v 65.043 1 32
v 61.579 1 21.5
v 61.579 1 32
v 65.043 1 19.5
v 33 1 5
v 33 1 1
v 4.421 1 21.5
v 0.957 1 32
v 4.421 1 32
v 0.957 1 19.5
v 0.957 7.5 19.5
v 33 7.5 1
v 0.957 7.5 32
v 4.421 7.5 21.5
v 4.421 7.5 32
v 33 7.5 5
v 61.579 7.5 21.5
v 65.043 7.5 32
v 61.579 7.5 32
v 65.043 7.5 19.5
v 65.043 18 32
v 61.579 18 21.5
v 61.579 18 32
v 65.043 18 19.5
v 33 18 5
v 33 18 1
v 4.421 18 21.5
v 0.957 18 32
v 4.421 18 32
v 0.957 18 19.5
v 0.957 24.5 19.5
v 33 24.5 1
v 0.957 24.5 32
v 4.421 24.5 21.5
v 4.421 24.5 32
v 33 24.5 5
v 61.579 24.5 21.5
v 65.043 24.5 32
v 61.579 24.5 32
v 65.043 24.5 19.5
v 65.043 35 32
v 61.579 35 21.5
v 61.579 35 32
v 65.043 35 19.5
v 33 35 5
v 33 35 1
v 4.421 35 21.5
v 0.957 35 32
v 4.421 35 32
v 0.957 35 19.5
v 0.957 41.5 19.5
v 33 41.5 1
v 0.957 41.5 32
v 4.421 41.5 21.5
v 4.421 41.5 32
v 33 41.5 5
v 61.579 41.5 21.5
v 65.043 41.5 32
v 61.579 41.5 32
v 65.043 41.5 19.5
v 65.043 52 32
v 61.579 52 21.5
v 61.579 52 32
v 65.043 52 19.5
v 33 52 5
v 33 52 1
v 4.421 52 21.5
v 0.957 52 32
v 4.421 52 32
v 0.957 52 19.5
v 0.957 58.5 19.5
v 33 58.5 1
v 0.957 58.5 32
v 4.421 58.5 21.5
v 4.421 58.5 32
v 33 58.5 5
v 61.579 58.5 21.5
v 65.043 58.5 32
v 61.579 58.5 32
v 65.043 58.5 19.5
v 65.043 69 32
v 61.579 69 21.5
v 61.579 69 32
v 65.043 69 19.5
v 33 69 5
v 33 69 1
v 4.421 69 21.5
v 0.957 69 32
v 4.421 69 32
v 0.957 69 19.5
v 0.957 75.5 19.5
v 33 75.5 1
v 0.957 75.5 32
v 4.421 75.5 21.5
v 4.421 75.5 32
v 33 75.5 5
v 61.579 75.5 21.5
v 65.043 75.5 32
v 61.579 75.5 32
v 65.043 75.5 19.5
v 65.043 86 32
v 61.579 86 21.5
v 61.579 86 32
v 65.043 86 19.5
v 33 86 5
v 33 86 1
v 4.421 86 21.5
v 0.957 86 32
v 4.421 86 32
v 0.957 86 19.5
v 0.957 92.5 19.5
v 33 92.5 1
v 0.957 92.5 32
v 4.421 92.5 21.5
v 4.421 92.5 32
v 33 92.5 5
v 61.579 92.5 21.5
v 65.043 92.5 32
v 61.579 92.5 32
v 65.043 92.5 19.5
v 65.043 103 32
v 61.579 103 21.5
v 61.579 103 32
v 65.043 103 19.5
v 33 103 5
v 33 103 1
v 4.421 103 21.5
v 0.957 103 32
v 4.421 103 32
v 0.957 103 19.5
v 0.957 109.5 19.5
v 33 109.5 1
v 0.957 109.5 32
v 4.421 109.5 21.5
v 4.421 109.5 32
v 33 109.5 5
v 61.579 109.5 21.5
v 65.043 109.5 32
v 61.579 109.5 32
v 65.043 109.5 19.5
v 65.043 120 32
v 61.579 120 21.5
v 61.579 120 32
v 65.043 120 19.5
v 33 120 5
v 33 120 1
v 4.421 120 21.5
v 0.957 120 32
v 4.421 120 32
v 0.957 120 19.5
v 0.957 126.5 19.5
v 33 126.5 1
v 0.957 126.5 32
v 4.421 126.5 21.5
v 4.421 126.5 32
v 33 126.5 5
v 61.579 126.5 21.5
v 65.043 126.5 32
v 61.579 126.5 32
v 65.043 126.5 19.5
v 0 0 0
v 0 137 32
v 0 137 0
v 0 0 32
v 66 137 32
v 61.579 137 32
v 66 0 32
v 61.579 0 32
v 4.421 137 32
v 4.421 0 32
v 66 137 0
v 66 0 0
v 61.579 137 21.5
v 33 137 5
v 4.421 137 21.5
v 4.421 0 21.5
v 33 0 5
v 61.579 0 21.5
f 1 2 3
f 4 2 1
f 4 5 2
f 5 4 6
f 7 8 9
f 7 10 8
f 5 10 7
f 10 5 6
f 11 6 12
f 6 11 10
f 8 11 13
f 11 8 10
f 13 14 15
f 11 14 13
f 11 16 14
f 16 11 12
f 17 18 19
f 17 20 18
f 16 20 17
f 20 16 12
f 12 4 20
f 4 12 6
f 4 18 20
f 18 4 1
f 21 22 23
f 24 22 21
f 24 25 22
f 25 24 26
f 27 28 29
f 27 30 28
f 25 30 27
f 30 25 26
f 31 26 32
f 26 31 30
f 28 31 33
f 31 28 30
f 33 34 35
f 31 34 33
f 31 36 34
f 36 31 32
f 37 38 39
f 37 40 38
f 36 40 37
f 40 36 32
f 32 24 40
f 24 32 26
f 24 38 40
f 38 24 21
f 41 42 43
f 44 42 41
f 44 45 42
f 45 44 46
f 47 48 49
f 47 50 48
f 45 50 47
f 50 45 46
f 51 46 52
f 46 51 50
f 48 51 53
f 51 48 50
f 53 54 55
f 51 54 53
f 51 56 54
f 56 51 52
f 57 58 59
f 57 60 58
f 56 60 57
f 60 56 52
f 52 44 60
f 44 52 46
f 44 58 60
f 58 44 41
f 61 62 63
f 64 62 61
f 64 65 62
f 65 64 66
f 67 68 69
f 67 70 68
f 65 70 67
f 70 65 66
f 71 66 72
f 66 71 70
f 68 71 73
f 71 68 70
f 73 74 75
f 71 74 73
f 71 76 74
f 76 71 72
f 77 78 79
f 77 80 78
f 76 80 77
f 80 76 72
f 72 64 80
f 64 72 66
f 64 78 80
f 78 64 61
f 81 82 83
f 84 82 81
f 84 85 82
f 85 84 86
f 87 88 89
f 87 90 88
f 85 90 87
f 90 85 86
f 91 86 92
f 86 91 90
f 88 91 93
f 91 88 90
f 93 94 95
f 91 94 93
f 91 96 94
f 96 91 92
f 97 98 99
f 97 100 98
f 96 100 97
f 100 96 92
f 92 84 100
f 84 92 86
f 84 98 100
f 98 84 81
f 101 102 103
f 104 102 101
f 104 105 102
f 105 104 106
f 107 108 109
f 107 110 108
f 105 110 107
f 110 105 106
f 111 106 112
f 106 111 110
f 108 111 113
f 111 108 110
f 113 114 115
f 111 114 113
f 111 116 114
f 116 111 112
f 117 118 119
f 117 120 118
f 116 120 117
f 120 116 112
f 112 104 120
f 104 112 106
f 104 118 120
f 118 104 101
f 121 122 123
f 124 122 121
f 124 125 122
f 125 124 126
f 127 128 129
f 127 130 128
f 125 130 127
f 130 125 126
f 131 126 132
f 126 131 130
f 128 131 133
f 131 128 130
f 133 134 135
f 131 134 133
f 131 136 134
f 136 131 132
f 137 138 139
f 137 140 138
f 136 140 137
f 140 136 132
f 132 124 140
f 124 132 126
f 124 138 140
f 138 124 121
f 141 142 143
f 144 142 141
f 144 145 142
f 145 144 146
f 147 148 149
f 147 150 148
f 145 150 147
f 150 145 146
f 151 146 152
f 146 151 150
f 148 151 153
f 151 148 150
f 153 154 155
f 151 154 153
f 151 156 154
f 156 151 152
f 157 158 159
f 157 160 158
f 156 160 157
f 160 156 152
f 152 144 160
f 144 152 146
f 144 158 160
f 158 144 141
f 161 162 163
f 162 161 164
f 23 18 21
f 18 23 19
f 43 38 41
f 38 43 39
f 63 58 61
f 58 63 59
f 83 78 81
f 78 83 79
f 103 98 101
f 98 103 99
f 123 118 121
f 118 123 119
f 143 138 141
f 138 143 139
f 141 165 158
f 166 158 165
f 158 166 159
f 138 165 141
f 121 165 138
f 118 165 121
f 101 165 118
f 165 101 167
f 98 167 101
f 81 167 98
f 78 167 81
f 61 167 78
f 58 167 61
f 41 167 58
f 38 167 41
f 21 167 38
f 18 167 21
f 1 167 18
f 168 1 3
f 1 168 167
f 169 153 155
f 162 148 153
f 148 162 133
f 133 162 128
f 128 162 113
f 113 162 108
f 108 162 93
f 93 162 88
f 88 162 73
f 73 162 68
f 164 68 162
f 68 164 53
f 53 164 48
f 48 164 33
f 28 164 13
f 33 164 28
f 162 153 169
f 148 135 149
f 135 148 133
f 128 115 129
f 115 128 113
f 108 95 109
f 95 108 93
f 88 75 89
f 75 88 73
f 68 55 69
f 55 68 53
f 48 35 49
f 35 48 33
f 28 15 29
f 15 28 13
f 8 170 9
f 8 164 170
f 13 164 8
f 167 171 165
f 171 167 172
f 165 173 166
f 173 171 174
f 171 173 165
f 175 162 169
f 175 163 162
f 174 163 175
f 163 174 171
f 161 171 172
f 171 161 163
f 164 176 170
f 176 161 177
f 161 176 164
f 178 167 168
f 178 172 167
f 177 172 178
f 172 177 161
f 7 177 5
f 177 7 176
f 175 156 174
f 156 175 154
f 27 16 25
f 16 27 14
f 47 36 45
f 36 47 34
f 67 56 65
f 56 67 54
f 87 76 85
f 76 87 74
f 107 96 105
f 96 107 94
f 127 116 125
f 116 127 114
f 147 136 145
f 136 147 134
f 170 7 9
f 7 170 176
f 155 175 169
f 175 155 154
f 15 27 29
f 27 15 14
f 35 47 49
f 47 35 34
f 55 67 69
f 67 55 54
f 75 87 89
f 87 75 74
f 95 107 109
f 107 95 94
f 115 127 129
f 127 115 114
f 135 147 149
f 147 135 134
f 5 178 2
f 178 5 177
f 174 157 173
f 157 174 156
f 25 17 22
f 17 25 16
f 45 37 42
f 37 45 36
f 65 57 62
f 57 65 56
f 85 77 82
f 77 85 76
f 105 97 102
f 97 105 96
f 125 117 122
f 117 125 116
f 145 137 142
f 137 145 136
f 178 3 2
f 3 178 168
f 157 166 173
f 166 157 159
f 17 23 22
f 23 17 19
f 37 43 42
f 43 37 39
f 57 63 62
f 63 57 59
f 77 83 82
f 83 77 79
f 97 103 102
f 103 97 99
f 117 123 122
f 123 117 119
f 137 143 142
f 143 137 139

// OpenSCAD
$fn=200;
THICK = 1;

TILE_L = 16;
TILE_COUNT = 8;

BOX_W = 64;
BOX_L = (TILE_L + 1) * TILE_COUNT - 1;
BOX_H = 32;

difference() {
    cube(size = [
        BOX_W + (THICK * 2),
        BOX_L + (THICK * 2), 
        BOX_H]);

    translate([33, -5, 38])
        rotate([0, 90, 90]) 
            cylinder(h = 200, r = 33, $fn=6);

    for (i = [THICK : TILE_L + 1 : THICK + ((TILE_L + 1) * (TILE_COUNT - 1))] ) {
        tile_slot(i);
    }
}

module tile_slot(y) {
    translate([33, y, 38])
        rotate([0, 90, 90]) 
            cylinder(h = 6.5, r = 37, $fn=6);
}
